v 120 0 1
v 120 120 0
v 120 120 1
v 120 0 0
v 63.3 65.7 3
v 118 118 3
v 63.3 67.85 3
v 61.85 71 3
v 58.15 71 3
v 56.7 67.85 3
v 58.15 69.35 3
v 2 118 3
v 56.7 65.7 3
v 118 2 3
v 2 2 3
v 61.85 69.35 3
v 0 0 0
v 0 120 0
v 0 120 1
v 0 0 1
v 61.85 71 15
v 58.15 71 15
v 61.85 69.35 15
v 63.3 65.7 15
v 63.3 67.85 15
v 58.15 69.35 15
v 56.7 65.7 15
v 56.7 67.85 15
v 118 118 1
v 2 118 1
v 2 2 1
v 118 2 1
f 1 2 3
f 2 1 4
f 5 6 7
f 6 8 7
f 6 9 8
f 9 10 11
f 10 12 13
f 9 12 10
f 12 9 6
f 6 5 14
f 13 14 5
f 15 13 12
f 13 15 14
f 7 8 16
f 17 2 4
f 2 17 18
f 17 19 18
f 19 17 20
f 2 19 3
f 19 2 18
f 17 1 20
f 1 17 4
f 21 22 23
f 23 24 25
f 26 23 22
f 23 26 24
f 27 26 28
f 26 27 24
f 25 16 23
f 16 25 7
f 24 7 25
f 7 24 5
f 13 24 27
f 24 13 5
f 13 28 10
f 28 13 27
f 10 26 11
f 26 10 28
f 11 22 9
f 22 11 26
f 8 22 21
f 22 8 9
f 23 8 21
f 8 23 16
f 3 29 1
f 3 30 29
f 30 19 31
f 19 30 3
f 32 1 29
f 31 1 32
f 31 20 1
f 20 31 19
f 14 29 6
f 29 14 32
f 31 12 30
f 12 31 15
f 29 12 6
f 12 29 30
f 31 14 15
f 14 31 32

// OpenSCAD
// Base de la boîte - La Boîte à Coucou
//
// Vue de dessus (schéma utilisateur) :
//   Y+ = côté rail (haut du schéma)
//   Y- = côté Pi (bas du schéma) -> trou câble alimentation
//   X  = centré
//
// Assemblage :
//   - base plate avec rainure périphérique pour les murs (box.scad)
//   - languette mâle en T côté Y+, centrée en X :
//     profil identique à la crémaillère (rack.scad), jeu tight 0.1mm
//     s'insère dans le canal du rail_bracket par le bas
//
// PROTO validé à 50% (01/05/2026). Version finale : 120x120mm, languette 12mm
// ===================================================================

// -------------------------------------------------------------------
// Profil T intérieur du rail (identique à rail_bracket.scad)
// On reproduit le profil avec jeu tight pour que la languette s'emboîte
// -------------------------------------------------------------------
rb_head_w  = 6.3;
rb_head_h  = 2.0;
rb_taper_h = 1.5;
rb_stem_w  = 3.4;
rb_stem_h  = 1.5;
rb_cl      = 0.20;   // jeu glissant interne du rail

// Dimensions intérieures du canal (ce dans quoi on doit rentrer)
canal_head_w = rb_head_w + 2*rb_cl;
canal_stem_w = rb_stem_w + 2*rb_cl;
canal_head_h = rb_head_h + rb_cl;
canal_taper  = rb_taper_h;
canal_stem_h = rb_stem_h + rb_cl;

cl_tight     = 0.05;   // jeu tight languette dans canal

// Languette mâle : légèrement plus petite que le canal
tongue_head_w = canal_head_w - 2*cl_tight;
tongue_stem_w = canal_stem_w - 2*cl_tight;
tongue_head_h = canal_head_h - cl_tight;
tongue_taper  = canal_taper;
tongue_stem_h = canal_stem_h - cl_tight;
tongue_h      = 12;   // hauteur de la languette réduite (évite contact avec bas du rail)

// -------------------------------------------------------------------
// Dimensions base (proto 50%)
// -------------------------------------------------------------------
proto    = 1.0;

base_x   = 120 * proto;   // 120mm
base_y   = 120 * proto;   // 120mm
base_z   = 3;

groove_w = 2;  // pas de jeu - filament bien calibré
groove_d = 2;
wall_t   = 3;

cable_d  = 10;
cable_x  = base_x / 2;

// -------------------------------------------------------------------
// Module languette mâle en T (section 2D, profil crémaillère)
// -------------------------------------------------------------------
module tongue_2d() {
    polygon([
        // tige (partie fine, face avant Y=0)
        [-tongue_stem_w/2, 0                                        ],
        [ tongue_stem_w/2, 0                                        ],
        // trapèze
        [ tongue_stem_w/2, tongue_stem_h                            ],
        [ tongue_head_w/2, tongue_stem_h + tongue_taper             ],
        // base large
        [ tongue_head_w/2, tongue_stem_h + tongue_taper + tongue_head_h ],
        [-tongue_head_w/2, tongue_stem_h + tongue_taper + tongue_head_h ],
        [-tongue_head_w/2, tongue_stem_h + tongue_taper             ],
        [-tongue_stem_w/2, tongue_stem_h                            ],
    ]);
}

// -------------------------------------------------------------------
// Base
// -------------------------------------------------------------------
difference() {
    union() {
        // Dalle principale
        cube([base_x, base_y, base_z]);

        // Languette mâle - centrée en X, côté Y+, décalée de wall_t du bord
        // S'insère vers le haut dans le canal du rail_bracket
        // Miroir Y : tête large côté Y-, tige fine côté Y+ (câbles dégagés du côté pignon/crémaillère)
        translate([base_x/2, base_y - wall_t - 46, base_z])
        mirror([0,1,0])
        linear_extrude(height = tongue_h)
        tongue_2d();
    }

    // Rainure périphérique collée au bord extérieur
    translate([0, 0, base_z - groove_d])
    difference() {
        cube([base_x, base_y, groove_d + 0.1]);
        translate([groove_w, groove_w, -0.1])
        cube([base_x - 2*groove_w, base_y - 2*groove_w, groove_d + 0.3]);
    }
}
